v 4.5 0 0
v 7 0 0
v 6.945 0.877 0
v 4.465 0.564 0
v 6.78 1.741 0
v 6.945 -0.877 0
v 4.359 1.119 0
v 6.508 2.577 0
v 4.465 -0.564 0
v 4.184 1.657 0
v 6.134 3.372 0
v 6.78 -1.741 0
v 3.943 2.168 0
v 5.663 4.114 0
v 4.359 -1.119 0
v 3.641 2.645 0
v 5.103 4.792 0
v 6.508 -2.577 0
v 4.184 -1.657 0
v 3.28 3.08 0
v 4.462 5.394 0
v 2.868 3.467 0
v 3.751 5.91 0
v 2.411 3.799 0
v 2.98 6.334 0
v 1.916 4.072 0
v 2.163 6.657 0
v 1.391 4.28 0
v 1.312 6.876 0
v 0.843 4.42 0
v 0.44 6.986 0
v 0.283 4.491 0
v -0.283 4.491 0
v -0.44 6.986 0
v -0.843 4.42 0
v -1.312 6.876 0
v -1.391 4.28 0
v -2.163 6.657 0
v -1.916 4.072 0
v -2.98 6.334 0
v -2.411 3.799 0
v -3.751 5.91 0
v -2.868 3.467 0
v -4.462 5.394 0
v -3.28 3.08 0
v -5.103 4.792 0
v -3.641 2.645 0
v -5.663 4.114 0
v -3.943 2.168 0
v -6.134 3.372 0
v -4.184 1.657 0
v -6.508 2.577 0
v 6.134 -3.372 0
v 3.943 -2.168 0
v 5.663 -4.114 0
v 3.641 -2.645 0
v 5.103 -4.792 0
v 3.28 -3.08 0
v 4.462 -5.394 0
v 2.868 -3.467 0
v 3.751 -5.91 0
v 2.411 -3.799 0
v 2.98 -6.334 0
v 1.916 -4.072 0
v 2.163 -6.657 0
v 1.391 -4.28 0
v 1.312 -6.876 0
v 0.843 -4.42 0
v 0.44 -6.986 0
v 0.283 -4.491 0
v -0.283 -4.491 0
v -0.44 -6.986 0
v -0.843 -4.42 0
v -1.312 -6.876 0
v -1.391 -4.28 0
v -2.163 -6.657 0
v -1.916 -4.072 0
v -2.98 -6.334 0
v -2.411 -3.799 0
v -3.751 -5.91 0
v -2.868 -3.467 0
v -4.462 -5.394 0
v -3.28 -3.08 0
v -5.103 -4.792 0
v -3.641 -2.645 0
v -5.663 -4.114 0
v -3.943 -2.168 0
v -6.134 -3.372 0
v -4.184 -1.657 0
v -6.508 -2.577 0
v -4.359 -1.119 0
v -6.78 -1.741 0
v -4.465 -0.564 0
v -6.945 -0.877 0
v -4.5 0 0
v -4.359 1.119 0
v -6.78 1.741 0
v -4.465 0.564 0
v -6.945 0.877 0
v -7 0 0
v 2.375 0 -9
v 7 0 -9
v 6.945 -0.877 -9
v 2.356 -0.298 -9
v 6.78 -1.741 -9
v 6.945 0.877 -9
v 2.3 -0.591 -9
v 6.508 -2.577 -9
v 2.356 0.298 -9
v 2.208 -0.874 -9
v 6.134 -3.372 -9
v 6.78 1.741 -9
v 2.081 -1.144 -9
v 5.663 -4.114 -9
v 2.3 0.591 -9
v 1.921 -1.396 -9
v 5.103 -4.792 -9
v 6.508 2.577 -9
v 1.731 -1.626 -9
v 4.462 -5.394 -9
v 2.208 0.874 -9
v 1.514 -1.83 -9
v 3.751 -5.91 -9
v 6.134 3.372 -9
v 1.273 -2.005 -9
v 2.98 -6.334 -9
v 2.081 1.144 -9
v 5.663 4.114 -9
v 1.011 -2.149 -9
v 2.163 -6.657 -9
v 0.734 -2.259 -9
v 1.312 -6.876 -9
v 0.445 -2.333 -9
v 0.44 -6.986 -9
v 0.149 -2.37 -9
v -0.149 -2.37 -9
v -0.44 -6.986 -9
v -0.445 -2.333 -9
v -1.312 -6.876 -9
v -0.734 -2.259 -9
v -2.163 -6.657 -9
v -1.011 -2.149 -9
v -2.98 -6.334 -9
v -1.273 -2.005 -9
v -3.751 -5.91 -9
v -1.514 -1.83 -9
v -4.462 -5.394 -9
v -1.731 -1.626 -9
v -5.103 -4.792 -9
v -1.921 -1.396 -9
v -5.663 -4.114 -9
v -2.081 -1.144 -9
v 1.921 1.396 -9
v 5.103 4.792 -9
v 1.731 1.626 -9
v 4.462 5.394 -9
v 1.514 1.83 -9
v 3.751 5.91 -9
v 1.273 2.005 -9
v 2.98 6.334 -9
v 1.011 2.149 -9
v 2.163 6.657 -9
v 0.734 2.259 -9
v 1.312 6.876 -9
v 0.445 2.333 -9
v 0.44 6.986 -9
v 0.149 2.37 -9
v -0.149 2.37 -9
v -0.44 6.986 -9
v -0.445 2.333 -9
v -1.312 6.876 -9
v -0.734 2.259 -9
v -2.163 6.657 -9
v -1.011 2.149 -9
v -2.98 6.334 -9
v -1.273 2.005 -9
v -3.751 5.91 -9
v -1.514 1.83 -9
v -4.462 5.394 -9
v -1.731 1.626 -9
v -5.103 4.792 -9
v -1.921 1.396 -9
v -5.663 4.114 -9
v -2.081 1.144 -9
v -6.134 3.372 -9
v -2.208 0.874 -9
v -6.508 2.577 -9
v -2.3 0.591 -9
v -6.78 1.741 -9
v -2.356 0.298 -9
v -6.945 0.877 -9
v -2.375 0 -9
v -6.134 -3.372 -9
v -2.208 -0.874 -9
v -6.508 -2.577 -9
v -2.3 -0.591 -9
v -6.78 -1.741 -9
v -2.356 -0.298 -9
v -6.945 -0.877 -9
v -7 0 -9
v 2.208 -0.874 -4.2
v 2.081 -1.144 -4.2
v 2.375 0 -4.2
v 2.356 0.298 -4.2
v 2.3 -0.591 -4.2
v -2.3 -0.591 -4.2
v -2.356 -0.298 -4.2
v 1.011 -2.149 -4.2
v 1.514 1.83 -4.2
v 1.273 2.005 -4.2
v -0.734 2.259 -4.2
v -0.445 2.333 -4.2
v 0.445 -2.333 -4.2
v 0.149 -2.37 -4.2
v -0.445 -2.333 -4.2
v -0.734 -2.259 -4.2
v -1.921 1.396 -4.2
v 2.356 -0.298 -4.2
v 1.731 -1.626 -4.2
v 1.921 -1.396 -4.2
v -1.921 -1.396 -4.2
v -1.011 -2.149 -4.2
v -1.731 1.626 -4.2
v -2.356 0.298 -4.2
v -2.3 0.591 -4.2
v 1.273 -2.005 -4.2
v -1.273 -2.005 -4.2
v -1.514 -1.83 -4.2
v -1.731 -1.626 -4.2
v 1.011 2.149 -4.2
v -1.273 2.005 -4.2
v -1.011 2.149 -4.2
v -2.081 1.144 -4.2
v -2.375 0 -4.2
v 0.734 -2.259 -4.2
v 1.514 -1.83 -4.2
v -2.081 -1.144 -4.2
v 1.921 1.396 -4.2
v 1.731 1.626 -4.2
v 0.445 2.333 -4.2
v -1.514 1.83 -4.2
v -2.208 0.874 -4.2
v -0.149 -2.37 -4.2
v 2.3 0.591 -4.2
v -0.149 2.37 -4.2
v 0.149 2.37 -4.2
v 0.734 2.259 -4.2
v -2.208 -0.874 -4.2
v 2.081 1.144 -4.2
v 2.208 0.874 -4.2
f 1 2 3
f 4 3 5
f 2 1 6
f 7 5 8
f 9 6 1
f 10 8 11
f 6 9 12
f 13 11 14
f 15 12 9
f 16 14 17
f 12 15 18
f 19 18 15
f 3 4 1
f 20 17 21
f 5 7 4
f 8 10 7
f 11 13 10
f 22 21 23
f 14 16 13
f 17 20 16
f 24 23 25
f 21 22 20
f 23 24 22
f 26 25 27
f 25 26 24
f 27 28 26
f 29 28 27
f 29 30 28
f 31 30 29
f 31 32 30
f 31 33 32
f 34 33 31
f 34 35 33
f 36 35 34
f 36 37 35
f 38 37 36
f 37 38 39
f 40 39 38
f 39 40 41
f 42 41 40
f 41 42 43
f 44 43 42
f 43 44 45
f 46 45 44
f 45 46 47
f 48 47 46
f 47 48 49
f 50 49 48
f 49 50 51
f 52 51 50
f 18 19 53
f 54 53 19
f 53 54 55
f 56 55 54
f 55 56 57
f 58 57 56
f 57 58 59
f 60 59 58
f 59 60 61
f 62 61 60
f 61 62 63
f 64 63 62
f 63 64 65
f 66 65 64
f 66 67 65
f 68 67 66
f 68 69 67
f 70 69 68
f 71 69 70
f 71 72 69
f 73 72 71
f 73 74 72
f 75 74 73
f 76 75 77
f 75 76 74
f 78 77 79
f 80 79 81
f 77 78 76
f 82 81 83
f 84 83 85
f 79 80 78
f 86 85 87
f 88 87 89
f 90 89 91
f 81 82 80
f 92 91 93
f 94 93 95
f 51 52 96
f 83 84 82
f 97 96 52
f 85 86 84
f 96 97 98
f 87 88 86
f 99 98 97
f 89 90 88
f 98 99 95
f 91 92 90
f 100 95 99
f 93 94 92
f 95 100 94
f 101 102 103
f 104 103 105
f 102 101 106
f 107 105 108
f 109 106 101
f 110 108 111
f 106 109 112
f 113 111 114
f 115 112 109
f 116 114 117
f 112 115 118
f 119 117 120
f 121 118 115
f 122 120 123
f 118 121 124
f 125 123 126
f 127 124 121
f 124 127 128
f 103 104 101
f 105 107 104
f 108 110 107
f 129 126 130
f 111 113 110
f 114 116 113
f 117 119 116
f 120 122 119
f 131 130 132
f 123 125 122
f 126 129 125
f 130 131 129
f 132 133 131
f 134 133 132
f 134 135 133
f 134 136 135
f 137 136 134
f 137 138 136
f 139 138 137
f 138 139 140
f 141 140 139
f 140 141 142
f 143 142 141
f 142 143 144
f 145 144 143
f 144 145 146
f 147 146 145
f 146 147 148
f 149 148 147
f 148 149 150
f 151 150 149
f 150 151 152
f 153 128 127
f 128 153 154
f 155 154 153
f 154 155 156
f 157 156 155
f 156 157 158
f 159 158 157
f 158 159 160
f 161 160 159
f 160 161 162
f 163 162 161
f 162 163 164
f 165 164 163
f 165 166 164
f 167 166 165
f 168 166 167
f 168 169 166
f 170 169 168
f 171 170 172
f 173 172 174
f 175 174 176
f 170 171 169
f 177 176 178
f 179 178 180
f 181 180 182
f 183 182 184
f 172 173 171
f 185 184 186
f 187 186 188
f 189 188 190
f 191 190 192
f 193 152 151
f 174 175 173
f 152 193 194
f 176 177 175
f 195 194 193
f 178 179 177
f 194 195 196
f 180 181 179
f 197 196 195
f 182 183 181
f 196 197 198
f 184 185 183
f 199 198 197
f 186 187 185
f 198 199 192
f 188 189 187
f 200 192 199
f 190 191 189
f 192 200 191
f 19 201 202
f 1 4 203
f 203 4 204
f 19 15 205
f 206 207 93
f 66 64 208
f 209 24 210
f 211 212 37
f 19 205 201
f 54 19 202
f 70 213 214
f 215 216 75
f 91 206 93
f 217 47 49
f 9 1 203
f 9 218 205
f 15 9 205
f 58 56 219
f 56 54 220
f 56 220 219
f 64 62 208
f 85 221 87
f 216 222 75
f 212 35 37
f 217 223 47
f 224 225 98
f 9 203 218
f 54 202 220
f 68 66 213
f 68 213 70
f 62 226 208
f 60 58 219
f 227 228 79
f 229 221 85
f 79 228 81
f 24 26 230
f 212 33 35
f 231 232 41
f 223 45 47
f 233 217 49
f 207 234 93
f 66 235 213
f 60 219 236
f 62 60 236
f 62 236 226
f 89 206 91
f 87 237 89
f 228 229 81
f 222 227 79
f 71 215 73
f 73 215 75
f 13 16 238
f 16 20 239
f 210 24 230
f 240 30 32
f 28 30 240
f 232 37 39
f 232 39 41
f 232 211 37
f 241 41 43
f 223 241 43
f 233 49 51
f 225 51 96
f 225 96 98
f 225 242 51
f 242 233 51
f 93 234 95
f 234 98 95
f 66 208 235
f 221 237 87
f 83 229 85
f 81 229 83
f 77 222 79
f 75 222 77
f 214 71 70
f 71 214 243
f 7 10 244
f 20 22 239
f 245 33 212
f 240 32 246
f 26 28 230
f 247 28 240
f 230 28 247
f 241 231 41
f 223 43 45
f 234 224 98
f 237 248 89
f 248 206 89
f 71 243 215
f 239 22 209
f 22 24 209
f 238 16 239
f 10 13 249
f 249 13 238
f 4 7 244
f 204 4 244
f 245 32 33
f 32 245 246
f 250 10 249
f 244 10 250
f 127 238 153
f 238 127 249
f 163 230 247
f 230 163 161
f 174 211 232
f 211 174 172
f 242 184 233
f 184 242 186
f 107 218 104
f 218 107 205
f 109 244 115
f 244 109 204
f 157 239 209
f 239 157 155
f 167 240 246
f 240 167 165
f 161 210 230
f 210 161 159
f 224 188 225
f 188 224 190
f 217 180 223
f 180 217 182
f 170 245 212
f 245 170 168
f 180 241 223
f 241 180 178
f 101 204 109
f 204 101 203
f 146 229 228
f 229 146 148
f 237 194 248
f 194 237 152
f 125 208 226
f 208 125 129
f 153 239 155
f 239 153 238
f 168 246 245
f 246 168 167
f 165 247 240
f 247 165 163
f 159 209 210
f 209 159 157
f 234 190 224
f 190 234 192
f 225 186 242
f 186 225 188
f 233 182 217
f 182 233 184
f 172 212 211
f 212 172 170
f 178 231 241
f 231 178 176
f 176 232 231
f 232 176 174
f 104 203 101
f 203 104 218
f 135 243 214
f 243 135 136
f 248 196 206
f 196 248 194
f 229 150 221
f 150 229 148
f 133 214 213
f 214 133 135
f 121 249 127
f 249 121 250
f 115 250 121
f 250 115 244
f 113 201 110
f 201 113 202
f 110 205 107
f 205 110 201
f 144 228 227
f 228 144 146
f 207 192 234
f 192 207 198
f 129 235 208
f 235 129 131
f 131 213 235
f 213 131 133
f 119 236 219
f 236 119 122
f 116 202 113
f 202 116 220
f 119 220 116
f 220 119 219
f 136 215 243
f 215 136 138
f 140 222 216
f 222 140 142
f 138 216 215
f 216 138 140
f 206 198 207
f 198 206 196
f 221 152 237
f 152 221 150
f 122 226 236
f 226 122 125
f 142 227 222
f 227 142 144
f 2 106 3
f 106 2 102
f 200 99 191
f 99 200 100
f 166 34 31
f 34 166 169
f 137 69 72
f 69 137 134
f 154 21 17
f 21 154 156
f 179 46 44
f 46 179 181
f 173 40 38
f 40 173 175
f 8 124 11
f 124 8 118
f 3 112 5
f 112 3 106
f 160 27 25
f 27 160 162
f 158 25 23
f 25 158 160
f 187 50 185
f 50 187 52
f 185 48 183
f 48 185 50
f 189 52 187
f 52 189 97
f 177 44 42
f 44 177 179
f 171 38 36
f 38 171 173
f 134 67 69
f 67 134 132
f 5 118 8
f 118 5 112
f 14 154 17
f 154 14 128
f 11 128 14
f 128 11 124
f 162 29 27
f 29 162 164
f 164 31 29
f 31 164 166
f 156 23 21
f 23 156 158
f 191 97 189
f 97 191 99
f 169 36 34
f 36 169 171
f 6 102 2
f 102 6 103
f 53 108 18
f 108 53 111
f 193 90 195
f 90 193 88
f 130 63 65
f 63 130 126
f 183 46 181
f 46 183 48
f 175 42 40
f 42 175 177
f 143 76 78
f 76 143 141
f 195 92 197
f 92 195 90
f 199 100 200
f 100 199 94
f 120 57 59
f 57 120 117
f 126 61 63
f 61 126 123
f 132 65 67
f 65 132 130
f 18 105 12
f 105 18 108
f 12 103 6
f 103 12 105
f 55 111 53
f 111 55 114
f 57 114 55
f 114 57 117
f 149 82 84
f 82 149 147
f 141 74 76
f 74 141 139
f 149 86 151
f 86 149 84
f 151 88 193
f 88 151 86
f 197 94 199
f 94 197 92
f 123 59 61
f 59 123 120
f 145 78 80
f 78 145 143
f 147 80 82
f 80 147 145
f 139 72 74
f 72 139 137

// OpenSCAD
$fn = 50;


difference() {
	union() {
		translate(v = [0, 0, -9.0000000000]) {
			cylinder(h = 9, r = 7.0000000000);
		}
		cylinder(h = 0, r = 10.0000000000);
	}
	union() {
		translate(v = [0, 0, 0]) {
			rotate(a = [0, 0, 0]) {
				difference() {
					union() {
						#translate(v = [0, 0, -9.0000000000]) {
							cylinder(h = 9, r = 2.2500000000);
						}
						#translate(v = [0, 0, -4.2000000000]) {
							cylinder(h = 4.2000000000, r = 7.0000000000, r1 = 2.3750000000, r2 = 4.5000000000);
						}
						#translate(v = [0, 0, -9.0000000000]) {
							cylinder(h = 9, r = 2.3750000000);
						}
						#translate(v = [0, 0, -9.0000000000]) {
							cylinder(h = 9, r = 2.2500000000);
						}
					}
					union();
				}
			}
		}
	}
}
